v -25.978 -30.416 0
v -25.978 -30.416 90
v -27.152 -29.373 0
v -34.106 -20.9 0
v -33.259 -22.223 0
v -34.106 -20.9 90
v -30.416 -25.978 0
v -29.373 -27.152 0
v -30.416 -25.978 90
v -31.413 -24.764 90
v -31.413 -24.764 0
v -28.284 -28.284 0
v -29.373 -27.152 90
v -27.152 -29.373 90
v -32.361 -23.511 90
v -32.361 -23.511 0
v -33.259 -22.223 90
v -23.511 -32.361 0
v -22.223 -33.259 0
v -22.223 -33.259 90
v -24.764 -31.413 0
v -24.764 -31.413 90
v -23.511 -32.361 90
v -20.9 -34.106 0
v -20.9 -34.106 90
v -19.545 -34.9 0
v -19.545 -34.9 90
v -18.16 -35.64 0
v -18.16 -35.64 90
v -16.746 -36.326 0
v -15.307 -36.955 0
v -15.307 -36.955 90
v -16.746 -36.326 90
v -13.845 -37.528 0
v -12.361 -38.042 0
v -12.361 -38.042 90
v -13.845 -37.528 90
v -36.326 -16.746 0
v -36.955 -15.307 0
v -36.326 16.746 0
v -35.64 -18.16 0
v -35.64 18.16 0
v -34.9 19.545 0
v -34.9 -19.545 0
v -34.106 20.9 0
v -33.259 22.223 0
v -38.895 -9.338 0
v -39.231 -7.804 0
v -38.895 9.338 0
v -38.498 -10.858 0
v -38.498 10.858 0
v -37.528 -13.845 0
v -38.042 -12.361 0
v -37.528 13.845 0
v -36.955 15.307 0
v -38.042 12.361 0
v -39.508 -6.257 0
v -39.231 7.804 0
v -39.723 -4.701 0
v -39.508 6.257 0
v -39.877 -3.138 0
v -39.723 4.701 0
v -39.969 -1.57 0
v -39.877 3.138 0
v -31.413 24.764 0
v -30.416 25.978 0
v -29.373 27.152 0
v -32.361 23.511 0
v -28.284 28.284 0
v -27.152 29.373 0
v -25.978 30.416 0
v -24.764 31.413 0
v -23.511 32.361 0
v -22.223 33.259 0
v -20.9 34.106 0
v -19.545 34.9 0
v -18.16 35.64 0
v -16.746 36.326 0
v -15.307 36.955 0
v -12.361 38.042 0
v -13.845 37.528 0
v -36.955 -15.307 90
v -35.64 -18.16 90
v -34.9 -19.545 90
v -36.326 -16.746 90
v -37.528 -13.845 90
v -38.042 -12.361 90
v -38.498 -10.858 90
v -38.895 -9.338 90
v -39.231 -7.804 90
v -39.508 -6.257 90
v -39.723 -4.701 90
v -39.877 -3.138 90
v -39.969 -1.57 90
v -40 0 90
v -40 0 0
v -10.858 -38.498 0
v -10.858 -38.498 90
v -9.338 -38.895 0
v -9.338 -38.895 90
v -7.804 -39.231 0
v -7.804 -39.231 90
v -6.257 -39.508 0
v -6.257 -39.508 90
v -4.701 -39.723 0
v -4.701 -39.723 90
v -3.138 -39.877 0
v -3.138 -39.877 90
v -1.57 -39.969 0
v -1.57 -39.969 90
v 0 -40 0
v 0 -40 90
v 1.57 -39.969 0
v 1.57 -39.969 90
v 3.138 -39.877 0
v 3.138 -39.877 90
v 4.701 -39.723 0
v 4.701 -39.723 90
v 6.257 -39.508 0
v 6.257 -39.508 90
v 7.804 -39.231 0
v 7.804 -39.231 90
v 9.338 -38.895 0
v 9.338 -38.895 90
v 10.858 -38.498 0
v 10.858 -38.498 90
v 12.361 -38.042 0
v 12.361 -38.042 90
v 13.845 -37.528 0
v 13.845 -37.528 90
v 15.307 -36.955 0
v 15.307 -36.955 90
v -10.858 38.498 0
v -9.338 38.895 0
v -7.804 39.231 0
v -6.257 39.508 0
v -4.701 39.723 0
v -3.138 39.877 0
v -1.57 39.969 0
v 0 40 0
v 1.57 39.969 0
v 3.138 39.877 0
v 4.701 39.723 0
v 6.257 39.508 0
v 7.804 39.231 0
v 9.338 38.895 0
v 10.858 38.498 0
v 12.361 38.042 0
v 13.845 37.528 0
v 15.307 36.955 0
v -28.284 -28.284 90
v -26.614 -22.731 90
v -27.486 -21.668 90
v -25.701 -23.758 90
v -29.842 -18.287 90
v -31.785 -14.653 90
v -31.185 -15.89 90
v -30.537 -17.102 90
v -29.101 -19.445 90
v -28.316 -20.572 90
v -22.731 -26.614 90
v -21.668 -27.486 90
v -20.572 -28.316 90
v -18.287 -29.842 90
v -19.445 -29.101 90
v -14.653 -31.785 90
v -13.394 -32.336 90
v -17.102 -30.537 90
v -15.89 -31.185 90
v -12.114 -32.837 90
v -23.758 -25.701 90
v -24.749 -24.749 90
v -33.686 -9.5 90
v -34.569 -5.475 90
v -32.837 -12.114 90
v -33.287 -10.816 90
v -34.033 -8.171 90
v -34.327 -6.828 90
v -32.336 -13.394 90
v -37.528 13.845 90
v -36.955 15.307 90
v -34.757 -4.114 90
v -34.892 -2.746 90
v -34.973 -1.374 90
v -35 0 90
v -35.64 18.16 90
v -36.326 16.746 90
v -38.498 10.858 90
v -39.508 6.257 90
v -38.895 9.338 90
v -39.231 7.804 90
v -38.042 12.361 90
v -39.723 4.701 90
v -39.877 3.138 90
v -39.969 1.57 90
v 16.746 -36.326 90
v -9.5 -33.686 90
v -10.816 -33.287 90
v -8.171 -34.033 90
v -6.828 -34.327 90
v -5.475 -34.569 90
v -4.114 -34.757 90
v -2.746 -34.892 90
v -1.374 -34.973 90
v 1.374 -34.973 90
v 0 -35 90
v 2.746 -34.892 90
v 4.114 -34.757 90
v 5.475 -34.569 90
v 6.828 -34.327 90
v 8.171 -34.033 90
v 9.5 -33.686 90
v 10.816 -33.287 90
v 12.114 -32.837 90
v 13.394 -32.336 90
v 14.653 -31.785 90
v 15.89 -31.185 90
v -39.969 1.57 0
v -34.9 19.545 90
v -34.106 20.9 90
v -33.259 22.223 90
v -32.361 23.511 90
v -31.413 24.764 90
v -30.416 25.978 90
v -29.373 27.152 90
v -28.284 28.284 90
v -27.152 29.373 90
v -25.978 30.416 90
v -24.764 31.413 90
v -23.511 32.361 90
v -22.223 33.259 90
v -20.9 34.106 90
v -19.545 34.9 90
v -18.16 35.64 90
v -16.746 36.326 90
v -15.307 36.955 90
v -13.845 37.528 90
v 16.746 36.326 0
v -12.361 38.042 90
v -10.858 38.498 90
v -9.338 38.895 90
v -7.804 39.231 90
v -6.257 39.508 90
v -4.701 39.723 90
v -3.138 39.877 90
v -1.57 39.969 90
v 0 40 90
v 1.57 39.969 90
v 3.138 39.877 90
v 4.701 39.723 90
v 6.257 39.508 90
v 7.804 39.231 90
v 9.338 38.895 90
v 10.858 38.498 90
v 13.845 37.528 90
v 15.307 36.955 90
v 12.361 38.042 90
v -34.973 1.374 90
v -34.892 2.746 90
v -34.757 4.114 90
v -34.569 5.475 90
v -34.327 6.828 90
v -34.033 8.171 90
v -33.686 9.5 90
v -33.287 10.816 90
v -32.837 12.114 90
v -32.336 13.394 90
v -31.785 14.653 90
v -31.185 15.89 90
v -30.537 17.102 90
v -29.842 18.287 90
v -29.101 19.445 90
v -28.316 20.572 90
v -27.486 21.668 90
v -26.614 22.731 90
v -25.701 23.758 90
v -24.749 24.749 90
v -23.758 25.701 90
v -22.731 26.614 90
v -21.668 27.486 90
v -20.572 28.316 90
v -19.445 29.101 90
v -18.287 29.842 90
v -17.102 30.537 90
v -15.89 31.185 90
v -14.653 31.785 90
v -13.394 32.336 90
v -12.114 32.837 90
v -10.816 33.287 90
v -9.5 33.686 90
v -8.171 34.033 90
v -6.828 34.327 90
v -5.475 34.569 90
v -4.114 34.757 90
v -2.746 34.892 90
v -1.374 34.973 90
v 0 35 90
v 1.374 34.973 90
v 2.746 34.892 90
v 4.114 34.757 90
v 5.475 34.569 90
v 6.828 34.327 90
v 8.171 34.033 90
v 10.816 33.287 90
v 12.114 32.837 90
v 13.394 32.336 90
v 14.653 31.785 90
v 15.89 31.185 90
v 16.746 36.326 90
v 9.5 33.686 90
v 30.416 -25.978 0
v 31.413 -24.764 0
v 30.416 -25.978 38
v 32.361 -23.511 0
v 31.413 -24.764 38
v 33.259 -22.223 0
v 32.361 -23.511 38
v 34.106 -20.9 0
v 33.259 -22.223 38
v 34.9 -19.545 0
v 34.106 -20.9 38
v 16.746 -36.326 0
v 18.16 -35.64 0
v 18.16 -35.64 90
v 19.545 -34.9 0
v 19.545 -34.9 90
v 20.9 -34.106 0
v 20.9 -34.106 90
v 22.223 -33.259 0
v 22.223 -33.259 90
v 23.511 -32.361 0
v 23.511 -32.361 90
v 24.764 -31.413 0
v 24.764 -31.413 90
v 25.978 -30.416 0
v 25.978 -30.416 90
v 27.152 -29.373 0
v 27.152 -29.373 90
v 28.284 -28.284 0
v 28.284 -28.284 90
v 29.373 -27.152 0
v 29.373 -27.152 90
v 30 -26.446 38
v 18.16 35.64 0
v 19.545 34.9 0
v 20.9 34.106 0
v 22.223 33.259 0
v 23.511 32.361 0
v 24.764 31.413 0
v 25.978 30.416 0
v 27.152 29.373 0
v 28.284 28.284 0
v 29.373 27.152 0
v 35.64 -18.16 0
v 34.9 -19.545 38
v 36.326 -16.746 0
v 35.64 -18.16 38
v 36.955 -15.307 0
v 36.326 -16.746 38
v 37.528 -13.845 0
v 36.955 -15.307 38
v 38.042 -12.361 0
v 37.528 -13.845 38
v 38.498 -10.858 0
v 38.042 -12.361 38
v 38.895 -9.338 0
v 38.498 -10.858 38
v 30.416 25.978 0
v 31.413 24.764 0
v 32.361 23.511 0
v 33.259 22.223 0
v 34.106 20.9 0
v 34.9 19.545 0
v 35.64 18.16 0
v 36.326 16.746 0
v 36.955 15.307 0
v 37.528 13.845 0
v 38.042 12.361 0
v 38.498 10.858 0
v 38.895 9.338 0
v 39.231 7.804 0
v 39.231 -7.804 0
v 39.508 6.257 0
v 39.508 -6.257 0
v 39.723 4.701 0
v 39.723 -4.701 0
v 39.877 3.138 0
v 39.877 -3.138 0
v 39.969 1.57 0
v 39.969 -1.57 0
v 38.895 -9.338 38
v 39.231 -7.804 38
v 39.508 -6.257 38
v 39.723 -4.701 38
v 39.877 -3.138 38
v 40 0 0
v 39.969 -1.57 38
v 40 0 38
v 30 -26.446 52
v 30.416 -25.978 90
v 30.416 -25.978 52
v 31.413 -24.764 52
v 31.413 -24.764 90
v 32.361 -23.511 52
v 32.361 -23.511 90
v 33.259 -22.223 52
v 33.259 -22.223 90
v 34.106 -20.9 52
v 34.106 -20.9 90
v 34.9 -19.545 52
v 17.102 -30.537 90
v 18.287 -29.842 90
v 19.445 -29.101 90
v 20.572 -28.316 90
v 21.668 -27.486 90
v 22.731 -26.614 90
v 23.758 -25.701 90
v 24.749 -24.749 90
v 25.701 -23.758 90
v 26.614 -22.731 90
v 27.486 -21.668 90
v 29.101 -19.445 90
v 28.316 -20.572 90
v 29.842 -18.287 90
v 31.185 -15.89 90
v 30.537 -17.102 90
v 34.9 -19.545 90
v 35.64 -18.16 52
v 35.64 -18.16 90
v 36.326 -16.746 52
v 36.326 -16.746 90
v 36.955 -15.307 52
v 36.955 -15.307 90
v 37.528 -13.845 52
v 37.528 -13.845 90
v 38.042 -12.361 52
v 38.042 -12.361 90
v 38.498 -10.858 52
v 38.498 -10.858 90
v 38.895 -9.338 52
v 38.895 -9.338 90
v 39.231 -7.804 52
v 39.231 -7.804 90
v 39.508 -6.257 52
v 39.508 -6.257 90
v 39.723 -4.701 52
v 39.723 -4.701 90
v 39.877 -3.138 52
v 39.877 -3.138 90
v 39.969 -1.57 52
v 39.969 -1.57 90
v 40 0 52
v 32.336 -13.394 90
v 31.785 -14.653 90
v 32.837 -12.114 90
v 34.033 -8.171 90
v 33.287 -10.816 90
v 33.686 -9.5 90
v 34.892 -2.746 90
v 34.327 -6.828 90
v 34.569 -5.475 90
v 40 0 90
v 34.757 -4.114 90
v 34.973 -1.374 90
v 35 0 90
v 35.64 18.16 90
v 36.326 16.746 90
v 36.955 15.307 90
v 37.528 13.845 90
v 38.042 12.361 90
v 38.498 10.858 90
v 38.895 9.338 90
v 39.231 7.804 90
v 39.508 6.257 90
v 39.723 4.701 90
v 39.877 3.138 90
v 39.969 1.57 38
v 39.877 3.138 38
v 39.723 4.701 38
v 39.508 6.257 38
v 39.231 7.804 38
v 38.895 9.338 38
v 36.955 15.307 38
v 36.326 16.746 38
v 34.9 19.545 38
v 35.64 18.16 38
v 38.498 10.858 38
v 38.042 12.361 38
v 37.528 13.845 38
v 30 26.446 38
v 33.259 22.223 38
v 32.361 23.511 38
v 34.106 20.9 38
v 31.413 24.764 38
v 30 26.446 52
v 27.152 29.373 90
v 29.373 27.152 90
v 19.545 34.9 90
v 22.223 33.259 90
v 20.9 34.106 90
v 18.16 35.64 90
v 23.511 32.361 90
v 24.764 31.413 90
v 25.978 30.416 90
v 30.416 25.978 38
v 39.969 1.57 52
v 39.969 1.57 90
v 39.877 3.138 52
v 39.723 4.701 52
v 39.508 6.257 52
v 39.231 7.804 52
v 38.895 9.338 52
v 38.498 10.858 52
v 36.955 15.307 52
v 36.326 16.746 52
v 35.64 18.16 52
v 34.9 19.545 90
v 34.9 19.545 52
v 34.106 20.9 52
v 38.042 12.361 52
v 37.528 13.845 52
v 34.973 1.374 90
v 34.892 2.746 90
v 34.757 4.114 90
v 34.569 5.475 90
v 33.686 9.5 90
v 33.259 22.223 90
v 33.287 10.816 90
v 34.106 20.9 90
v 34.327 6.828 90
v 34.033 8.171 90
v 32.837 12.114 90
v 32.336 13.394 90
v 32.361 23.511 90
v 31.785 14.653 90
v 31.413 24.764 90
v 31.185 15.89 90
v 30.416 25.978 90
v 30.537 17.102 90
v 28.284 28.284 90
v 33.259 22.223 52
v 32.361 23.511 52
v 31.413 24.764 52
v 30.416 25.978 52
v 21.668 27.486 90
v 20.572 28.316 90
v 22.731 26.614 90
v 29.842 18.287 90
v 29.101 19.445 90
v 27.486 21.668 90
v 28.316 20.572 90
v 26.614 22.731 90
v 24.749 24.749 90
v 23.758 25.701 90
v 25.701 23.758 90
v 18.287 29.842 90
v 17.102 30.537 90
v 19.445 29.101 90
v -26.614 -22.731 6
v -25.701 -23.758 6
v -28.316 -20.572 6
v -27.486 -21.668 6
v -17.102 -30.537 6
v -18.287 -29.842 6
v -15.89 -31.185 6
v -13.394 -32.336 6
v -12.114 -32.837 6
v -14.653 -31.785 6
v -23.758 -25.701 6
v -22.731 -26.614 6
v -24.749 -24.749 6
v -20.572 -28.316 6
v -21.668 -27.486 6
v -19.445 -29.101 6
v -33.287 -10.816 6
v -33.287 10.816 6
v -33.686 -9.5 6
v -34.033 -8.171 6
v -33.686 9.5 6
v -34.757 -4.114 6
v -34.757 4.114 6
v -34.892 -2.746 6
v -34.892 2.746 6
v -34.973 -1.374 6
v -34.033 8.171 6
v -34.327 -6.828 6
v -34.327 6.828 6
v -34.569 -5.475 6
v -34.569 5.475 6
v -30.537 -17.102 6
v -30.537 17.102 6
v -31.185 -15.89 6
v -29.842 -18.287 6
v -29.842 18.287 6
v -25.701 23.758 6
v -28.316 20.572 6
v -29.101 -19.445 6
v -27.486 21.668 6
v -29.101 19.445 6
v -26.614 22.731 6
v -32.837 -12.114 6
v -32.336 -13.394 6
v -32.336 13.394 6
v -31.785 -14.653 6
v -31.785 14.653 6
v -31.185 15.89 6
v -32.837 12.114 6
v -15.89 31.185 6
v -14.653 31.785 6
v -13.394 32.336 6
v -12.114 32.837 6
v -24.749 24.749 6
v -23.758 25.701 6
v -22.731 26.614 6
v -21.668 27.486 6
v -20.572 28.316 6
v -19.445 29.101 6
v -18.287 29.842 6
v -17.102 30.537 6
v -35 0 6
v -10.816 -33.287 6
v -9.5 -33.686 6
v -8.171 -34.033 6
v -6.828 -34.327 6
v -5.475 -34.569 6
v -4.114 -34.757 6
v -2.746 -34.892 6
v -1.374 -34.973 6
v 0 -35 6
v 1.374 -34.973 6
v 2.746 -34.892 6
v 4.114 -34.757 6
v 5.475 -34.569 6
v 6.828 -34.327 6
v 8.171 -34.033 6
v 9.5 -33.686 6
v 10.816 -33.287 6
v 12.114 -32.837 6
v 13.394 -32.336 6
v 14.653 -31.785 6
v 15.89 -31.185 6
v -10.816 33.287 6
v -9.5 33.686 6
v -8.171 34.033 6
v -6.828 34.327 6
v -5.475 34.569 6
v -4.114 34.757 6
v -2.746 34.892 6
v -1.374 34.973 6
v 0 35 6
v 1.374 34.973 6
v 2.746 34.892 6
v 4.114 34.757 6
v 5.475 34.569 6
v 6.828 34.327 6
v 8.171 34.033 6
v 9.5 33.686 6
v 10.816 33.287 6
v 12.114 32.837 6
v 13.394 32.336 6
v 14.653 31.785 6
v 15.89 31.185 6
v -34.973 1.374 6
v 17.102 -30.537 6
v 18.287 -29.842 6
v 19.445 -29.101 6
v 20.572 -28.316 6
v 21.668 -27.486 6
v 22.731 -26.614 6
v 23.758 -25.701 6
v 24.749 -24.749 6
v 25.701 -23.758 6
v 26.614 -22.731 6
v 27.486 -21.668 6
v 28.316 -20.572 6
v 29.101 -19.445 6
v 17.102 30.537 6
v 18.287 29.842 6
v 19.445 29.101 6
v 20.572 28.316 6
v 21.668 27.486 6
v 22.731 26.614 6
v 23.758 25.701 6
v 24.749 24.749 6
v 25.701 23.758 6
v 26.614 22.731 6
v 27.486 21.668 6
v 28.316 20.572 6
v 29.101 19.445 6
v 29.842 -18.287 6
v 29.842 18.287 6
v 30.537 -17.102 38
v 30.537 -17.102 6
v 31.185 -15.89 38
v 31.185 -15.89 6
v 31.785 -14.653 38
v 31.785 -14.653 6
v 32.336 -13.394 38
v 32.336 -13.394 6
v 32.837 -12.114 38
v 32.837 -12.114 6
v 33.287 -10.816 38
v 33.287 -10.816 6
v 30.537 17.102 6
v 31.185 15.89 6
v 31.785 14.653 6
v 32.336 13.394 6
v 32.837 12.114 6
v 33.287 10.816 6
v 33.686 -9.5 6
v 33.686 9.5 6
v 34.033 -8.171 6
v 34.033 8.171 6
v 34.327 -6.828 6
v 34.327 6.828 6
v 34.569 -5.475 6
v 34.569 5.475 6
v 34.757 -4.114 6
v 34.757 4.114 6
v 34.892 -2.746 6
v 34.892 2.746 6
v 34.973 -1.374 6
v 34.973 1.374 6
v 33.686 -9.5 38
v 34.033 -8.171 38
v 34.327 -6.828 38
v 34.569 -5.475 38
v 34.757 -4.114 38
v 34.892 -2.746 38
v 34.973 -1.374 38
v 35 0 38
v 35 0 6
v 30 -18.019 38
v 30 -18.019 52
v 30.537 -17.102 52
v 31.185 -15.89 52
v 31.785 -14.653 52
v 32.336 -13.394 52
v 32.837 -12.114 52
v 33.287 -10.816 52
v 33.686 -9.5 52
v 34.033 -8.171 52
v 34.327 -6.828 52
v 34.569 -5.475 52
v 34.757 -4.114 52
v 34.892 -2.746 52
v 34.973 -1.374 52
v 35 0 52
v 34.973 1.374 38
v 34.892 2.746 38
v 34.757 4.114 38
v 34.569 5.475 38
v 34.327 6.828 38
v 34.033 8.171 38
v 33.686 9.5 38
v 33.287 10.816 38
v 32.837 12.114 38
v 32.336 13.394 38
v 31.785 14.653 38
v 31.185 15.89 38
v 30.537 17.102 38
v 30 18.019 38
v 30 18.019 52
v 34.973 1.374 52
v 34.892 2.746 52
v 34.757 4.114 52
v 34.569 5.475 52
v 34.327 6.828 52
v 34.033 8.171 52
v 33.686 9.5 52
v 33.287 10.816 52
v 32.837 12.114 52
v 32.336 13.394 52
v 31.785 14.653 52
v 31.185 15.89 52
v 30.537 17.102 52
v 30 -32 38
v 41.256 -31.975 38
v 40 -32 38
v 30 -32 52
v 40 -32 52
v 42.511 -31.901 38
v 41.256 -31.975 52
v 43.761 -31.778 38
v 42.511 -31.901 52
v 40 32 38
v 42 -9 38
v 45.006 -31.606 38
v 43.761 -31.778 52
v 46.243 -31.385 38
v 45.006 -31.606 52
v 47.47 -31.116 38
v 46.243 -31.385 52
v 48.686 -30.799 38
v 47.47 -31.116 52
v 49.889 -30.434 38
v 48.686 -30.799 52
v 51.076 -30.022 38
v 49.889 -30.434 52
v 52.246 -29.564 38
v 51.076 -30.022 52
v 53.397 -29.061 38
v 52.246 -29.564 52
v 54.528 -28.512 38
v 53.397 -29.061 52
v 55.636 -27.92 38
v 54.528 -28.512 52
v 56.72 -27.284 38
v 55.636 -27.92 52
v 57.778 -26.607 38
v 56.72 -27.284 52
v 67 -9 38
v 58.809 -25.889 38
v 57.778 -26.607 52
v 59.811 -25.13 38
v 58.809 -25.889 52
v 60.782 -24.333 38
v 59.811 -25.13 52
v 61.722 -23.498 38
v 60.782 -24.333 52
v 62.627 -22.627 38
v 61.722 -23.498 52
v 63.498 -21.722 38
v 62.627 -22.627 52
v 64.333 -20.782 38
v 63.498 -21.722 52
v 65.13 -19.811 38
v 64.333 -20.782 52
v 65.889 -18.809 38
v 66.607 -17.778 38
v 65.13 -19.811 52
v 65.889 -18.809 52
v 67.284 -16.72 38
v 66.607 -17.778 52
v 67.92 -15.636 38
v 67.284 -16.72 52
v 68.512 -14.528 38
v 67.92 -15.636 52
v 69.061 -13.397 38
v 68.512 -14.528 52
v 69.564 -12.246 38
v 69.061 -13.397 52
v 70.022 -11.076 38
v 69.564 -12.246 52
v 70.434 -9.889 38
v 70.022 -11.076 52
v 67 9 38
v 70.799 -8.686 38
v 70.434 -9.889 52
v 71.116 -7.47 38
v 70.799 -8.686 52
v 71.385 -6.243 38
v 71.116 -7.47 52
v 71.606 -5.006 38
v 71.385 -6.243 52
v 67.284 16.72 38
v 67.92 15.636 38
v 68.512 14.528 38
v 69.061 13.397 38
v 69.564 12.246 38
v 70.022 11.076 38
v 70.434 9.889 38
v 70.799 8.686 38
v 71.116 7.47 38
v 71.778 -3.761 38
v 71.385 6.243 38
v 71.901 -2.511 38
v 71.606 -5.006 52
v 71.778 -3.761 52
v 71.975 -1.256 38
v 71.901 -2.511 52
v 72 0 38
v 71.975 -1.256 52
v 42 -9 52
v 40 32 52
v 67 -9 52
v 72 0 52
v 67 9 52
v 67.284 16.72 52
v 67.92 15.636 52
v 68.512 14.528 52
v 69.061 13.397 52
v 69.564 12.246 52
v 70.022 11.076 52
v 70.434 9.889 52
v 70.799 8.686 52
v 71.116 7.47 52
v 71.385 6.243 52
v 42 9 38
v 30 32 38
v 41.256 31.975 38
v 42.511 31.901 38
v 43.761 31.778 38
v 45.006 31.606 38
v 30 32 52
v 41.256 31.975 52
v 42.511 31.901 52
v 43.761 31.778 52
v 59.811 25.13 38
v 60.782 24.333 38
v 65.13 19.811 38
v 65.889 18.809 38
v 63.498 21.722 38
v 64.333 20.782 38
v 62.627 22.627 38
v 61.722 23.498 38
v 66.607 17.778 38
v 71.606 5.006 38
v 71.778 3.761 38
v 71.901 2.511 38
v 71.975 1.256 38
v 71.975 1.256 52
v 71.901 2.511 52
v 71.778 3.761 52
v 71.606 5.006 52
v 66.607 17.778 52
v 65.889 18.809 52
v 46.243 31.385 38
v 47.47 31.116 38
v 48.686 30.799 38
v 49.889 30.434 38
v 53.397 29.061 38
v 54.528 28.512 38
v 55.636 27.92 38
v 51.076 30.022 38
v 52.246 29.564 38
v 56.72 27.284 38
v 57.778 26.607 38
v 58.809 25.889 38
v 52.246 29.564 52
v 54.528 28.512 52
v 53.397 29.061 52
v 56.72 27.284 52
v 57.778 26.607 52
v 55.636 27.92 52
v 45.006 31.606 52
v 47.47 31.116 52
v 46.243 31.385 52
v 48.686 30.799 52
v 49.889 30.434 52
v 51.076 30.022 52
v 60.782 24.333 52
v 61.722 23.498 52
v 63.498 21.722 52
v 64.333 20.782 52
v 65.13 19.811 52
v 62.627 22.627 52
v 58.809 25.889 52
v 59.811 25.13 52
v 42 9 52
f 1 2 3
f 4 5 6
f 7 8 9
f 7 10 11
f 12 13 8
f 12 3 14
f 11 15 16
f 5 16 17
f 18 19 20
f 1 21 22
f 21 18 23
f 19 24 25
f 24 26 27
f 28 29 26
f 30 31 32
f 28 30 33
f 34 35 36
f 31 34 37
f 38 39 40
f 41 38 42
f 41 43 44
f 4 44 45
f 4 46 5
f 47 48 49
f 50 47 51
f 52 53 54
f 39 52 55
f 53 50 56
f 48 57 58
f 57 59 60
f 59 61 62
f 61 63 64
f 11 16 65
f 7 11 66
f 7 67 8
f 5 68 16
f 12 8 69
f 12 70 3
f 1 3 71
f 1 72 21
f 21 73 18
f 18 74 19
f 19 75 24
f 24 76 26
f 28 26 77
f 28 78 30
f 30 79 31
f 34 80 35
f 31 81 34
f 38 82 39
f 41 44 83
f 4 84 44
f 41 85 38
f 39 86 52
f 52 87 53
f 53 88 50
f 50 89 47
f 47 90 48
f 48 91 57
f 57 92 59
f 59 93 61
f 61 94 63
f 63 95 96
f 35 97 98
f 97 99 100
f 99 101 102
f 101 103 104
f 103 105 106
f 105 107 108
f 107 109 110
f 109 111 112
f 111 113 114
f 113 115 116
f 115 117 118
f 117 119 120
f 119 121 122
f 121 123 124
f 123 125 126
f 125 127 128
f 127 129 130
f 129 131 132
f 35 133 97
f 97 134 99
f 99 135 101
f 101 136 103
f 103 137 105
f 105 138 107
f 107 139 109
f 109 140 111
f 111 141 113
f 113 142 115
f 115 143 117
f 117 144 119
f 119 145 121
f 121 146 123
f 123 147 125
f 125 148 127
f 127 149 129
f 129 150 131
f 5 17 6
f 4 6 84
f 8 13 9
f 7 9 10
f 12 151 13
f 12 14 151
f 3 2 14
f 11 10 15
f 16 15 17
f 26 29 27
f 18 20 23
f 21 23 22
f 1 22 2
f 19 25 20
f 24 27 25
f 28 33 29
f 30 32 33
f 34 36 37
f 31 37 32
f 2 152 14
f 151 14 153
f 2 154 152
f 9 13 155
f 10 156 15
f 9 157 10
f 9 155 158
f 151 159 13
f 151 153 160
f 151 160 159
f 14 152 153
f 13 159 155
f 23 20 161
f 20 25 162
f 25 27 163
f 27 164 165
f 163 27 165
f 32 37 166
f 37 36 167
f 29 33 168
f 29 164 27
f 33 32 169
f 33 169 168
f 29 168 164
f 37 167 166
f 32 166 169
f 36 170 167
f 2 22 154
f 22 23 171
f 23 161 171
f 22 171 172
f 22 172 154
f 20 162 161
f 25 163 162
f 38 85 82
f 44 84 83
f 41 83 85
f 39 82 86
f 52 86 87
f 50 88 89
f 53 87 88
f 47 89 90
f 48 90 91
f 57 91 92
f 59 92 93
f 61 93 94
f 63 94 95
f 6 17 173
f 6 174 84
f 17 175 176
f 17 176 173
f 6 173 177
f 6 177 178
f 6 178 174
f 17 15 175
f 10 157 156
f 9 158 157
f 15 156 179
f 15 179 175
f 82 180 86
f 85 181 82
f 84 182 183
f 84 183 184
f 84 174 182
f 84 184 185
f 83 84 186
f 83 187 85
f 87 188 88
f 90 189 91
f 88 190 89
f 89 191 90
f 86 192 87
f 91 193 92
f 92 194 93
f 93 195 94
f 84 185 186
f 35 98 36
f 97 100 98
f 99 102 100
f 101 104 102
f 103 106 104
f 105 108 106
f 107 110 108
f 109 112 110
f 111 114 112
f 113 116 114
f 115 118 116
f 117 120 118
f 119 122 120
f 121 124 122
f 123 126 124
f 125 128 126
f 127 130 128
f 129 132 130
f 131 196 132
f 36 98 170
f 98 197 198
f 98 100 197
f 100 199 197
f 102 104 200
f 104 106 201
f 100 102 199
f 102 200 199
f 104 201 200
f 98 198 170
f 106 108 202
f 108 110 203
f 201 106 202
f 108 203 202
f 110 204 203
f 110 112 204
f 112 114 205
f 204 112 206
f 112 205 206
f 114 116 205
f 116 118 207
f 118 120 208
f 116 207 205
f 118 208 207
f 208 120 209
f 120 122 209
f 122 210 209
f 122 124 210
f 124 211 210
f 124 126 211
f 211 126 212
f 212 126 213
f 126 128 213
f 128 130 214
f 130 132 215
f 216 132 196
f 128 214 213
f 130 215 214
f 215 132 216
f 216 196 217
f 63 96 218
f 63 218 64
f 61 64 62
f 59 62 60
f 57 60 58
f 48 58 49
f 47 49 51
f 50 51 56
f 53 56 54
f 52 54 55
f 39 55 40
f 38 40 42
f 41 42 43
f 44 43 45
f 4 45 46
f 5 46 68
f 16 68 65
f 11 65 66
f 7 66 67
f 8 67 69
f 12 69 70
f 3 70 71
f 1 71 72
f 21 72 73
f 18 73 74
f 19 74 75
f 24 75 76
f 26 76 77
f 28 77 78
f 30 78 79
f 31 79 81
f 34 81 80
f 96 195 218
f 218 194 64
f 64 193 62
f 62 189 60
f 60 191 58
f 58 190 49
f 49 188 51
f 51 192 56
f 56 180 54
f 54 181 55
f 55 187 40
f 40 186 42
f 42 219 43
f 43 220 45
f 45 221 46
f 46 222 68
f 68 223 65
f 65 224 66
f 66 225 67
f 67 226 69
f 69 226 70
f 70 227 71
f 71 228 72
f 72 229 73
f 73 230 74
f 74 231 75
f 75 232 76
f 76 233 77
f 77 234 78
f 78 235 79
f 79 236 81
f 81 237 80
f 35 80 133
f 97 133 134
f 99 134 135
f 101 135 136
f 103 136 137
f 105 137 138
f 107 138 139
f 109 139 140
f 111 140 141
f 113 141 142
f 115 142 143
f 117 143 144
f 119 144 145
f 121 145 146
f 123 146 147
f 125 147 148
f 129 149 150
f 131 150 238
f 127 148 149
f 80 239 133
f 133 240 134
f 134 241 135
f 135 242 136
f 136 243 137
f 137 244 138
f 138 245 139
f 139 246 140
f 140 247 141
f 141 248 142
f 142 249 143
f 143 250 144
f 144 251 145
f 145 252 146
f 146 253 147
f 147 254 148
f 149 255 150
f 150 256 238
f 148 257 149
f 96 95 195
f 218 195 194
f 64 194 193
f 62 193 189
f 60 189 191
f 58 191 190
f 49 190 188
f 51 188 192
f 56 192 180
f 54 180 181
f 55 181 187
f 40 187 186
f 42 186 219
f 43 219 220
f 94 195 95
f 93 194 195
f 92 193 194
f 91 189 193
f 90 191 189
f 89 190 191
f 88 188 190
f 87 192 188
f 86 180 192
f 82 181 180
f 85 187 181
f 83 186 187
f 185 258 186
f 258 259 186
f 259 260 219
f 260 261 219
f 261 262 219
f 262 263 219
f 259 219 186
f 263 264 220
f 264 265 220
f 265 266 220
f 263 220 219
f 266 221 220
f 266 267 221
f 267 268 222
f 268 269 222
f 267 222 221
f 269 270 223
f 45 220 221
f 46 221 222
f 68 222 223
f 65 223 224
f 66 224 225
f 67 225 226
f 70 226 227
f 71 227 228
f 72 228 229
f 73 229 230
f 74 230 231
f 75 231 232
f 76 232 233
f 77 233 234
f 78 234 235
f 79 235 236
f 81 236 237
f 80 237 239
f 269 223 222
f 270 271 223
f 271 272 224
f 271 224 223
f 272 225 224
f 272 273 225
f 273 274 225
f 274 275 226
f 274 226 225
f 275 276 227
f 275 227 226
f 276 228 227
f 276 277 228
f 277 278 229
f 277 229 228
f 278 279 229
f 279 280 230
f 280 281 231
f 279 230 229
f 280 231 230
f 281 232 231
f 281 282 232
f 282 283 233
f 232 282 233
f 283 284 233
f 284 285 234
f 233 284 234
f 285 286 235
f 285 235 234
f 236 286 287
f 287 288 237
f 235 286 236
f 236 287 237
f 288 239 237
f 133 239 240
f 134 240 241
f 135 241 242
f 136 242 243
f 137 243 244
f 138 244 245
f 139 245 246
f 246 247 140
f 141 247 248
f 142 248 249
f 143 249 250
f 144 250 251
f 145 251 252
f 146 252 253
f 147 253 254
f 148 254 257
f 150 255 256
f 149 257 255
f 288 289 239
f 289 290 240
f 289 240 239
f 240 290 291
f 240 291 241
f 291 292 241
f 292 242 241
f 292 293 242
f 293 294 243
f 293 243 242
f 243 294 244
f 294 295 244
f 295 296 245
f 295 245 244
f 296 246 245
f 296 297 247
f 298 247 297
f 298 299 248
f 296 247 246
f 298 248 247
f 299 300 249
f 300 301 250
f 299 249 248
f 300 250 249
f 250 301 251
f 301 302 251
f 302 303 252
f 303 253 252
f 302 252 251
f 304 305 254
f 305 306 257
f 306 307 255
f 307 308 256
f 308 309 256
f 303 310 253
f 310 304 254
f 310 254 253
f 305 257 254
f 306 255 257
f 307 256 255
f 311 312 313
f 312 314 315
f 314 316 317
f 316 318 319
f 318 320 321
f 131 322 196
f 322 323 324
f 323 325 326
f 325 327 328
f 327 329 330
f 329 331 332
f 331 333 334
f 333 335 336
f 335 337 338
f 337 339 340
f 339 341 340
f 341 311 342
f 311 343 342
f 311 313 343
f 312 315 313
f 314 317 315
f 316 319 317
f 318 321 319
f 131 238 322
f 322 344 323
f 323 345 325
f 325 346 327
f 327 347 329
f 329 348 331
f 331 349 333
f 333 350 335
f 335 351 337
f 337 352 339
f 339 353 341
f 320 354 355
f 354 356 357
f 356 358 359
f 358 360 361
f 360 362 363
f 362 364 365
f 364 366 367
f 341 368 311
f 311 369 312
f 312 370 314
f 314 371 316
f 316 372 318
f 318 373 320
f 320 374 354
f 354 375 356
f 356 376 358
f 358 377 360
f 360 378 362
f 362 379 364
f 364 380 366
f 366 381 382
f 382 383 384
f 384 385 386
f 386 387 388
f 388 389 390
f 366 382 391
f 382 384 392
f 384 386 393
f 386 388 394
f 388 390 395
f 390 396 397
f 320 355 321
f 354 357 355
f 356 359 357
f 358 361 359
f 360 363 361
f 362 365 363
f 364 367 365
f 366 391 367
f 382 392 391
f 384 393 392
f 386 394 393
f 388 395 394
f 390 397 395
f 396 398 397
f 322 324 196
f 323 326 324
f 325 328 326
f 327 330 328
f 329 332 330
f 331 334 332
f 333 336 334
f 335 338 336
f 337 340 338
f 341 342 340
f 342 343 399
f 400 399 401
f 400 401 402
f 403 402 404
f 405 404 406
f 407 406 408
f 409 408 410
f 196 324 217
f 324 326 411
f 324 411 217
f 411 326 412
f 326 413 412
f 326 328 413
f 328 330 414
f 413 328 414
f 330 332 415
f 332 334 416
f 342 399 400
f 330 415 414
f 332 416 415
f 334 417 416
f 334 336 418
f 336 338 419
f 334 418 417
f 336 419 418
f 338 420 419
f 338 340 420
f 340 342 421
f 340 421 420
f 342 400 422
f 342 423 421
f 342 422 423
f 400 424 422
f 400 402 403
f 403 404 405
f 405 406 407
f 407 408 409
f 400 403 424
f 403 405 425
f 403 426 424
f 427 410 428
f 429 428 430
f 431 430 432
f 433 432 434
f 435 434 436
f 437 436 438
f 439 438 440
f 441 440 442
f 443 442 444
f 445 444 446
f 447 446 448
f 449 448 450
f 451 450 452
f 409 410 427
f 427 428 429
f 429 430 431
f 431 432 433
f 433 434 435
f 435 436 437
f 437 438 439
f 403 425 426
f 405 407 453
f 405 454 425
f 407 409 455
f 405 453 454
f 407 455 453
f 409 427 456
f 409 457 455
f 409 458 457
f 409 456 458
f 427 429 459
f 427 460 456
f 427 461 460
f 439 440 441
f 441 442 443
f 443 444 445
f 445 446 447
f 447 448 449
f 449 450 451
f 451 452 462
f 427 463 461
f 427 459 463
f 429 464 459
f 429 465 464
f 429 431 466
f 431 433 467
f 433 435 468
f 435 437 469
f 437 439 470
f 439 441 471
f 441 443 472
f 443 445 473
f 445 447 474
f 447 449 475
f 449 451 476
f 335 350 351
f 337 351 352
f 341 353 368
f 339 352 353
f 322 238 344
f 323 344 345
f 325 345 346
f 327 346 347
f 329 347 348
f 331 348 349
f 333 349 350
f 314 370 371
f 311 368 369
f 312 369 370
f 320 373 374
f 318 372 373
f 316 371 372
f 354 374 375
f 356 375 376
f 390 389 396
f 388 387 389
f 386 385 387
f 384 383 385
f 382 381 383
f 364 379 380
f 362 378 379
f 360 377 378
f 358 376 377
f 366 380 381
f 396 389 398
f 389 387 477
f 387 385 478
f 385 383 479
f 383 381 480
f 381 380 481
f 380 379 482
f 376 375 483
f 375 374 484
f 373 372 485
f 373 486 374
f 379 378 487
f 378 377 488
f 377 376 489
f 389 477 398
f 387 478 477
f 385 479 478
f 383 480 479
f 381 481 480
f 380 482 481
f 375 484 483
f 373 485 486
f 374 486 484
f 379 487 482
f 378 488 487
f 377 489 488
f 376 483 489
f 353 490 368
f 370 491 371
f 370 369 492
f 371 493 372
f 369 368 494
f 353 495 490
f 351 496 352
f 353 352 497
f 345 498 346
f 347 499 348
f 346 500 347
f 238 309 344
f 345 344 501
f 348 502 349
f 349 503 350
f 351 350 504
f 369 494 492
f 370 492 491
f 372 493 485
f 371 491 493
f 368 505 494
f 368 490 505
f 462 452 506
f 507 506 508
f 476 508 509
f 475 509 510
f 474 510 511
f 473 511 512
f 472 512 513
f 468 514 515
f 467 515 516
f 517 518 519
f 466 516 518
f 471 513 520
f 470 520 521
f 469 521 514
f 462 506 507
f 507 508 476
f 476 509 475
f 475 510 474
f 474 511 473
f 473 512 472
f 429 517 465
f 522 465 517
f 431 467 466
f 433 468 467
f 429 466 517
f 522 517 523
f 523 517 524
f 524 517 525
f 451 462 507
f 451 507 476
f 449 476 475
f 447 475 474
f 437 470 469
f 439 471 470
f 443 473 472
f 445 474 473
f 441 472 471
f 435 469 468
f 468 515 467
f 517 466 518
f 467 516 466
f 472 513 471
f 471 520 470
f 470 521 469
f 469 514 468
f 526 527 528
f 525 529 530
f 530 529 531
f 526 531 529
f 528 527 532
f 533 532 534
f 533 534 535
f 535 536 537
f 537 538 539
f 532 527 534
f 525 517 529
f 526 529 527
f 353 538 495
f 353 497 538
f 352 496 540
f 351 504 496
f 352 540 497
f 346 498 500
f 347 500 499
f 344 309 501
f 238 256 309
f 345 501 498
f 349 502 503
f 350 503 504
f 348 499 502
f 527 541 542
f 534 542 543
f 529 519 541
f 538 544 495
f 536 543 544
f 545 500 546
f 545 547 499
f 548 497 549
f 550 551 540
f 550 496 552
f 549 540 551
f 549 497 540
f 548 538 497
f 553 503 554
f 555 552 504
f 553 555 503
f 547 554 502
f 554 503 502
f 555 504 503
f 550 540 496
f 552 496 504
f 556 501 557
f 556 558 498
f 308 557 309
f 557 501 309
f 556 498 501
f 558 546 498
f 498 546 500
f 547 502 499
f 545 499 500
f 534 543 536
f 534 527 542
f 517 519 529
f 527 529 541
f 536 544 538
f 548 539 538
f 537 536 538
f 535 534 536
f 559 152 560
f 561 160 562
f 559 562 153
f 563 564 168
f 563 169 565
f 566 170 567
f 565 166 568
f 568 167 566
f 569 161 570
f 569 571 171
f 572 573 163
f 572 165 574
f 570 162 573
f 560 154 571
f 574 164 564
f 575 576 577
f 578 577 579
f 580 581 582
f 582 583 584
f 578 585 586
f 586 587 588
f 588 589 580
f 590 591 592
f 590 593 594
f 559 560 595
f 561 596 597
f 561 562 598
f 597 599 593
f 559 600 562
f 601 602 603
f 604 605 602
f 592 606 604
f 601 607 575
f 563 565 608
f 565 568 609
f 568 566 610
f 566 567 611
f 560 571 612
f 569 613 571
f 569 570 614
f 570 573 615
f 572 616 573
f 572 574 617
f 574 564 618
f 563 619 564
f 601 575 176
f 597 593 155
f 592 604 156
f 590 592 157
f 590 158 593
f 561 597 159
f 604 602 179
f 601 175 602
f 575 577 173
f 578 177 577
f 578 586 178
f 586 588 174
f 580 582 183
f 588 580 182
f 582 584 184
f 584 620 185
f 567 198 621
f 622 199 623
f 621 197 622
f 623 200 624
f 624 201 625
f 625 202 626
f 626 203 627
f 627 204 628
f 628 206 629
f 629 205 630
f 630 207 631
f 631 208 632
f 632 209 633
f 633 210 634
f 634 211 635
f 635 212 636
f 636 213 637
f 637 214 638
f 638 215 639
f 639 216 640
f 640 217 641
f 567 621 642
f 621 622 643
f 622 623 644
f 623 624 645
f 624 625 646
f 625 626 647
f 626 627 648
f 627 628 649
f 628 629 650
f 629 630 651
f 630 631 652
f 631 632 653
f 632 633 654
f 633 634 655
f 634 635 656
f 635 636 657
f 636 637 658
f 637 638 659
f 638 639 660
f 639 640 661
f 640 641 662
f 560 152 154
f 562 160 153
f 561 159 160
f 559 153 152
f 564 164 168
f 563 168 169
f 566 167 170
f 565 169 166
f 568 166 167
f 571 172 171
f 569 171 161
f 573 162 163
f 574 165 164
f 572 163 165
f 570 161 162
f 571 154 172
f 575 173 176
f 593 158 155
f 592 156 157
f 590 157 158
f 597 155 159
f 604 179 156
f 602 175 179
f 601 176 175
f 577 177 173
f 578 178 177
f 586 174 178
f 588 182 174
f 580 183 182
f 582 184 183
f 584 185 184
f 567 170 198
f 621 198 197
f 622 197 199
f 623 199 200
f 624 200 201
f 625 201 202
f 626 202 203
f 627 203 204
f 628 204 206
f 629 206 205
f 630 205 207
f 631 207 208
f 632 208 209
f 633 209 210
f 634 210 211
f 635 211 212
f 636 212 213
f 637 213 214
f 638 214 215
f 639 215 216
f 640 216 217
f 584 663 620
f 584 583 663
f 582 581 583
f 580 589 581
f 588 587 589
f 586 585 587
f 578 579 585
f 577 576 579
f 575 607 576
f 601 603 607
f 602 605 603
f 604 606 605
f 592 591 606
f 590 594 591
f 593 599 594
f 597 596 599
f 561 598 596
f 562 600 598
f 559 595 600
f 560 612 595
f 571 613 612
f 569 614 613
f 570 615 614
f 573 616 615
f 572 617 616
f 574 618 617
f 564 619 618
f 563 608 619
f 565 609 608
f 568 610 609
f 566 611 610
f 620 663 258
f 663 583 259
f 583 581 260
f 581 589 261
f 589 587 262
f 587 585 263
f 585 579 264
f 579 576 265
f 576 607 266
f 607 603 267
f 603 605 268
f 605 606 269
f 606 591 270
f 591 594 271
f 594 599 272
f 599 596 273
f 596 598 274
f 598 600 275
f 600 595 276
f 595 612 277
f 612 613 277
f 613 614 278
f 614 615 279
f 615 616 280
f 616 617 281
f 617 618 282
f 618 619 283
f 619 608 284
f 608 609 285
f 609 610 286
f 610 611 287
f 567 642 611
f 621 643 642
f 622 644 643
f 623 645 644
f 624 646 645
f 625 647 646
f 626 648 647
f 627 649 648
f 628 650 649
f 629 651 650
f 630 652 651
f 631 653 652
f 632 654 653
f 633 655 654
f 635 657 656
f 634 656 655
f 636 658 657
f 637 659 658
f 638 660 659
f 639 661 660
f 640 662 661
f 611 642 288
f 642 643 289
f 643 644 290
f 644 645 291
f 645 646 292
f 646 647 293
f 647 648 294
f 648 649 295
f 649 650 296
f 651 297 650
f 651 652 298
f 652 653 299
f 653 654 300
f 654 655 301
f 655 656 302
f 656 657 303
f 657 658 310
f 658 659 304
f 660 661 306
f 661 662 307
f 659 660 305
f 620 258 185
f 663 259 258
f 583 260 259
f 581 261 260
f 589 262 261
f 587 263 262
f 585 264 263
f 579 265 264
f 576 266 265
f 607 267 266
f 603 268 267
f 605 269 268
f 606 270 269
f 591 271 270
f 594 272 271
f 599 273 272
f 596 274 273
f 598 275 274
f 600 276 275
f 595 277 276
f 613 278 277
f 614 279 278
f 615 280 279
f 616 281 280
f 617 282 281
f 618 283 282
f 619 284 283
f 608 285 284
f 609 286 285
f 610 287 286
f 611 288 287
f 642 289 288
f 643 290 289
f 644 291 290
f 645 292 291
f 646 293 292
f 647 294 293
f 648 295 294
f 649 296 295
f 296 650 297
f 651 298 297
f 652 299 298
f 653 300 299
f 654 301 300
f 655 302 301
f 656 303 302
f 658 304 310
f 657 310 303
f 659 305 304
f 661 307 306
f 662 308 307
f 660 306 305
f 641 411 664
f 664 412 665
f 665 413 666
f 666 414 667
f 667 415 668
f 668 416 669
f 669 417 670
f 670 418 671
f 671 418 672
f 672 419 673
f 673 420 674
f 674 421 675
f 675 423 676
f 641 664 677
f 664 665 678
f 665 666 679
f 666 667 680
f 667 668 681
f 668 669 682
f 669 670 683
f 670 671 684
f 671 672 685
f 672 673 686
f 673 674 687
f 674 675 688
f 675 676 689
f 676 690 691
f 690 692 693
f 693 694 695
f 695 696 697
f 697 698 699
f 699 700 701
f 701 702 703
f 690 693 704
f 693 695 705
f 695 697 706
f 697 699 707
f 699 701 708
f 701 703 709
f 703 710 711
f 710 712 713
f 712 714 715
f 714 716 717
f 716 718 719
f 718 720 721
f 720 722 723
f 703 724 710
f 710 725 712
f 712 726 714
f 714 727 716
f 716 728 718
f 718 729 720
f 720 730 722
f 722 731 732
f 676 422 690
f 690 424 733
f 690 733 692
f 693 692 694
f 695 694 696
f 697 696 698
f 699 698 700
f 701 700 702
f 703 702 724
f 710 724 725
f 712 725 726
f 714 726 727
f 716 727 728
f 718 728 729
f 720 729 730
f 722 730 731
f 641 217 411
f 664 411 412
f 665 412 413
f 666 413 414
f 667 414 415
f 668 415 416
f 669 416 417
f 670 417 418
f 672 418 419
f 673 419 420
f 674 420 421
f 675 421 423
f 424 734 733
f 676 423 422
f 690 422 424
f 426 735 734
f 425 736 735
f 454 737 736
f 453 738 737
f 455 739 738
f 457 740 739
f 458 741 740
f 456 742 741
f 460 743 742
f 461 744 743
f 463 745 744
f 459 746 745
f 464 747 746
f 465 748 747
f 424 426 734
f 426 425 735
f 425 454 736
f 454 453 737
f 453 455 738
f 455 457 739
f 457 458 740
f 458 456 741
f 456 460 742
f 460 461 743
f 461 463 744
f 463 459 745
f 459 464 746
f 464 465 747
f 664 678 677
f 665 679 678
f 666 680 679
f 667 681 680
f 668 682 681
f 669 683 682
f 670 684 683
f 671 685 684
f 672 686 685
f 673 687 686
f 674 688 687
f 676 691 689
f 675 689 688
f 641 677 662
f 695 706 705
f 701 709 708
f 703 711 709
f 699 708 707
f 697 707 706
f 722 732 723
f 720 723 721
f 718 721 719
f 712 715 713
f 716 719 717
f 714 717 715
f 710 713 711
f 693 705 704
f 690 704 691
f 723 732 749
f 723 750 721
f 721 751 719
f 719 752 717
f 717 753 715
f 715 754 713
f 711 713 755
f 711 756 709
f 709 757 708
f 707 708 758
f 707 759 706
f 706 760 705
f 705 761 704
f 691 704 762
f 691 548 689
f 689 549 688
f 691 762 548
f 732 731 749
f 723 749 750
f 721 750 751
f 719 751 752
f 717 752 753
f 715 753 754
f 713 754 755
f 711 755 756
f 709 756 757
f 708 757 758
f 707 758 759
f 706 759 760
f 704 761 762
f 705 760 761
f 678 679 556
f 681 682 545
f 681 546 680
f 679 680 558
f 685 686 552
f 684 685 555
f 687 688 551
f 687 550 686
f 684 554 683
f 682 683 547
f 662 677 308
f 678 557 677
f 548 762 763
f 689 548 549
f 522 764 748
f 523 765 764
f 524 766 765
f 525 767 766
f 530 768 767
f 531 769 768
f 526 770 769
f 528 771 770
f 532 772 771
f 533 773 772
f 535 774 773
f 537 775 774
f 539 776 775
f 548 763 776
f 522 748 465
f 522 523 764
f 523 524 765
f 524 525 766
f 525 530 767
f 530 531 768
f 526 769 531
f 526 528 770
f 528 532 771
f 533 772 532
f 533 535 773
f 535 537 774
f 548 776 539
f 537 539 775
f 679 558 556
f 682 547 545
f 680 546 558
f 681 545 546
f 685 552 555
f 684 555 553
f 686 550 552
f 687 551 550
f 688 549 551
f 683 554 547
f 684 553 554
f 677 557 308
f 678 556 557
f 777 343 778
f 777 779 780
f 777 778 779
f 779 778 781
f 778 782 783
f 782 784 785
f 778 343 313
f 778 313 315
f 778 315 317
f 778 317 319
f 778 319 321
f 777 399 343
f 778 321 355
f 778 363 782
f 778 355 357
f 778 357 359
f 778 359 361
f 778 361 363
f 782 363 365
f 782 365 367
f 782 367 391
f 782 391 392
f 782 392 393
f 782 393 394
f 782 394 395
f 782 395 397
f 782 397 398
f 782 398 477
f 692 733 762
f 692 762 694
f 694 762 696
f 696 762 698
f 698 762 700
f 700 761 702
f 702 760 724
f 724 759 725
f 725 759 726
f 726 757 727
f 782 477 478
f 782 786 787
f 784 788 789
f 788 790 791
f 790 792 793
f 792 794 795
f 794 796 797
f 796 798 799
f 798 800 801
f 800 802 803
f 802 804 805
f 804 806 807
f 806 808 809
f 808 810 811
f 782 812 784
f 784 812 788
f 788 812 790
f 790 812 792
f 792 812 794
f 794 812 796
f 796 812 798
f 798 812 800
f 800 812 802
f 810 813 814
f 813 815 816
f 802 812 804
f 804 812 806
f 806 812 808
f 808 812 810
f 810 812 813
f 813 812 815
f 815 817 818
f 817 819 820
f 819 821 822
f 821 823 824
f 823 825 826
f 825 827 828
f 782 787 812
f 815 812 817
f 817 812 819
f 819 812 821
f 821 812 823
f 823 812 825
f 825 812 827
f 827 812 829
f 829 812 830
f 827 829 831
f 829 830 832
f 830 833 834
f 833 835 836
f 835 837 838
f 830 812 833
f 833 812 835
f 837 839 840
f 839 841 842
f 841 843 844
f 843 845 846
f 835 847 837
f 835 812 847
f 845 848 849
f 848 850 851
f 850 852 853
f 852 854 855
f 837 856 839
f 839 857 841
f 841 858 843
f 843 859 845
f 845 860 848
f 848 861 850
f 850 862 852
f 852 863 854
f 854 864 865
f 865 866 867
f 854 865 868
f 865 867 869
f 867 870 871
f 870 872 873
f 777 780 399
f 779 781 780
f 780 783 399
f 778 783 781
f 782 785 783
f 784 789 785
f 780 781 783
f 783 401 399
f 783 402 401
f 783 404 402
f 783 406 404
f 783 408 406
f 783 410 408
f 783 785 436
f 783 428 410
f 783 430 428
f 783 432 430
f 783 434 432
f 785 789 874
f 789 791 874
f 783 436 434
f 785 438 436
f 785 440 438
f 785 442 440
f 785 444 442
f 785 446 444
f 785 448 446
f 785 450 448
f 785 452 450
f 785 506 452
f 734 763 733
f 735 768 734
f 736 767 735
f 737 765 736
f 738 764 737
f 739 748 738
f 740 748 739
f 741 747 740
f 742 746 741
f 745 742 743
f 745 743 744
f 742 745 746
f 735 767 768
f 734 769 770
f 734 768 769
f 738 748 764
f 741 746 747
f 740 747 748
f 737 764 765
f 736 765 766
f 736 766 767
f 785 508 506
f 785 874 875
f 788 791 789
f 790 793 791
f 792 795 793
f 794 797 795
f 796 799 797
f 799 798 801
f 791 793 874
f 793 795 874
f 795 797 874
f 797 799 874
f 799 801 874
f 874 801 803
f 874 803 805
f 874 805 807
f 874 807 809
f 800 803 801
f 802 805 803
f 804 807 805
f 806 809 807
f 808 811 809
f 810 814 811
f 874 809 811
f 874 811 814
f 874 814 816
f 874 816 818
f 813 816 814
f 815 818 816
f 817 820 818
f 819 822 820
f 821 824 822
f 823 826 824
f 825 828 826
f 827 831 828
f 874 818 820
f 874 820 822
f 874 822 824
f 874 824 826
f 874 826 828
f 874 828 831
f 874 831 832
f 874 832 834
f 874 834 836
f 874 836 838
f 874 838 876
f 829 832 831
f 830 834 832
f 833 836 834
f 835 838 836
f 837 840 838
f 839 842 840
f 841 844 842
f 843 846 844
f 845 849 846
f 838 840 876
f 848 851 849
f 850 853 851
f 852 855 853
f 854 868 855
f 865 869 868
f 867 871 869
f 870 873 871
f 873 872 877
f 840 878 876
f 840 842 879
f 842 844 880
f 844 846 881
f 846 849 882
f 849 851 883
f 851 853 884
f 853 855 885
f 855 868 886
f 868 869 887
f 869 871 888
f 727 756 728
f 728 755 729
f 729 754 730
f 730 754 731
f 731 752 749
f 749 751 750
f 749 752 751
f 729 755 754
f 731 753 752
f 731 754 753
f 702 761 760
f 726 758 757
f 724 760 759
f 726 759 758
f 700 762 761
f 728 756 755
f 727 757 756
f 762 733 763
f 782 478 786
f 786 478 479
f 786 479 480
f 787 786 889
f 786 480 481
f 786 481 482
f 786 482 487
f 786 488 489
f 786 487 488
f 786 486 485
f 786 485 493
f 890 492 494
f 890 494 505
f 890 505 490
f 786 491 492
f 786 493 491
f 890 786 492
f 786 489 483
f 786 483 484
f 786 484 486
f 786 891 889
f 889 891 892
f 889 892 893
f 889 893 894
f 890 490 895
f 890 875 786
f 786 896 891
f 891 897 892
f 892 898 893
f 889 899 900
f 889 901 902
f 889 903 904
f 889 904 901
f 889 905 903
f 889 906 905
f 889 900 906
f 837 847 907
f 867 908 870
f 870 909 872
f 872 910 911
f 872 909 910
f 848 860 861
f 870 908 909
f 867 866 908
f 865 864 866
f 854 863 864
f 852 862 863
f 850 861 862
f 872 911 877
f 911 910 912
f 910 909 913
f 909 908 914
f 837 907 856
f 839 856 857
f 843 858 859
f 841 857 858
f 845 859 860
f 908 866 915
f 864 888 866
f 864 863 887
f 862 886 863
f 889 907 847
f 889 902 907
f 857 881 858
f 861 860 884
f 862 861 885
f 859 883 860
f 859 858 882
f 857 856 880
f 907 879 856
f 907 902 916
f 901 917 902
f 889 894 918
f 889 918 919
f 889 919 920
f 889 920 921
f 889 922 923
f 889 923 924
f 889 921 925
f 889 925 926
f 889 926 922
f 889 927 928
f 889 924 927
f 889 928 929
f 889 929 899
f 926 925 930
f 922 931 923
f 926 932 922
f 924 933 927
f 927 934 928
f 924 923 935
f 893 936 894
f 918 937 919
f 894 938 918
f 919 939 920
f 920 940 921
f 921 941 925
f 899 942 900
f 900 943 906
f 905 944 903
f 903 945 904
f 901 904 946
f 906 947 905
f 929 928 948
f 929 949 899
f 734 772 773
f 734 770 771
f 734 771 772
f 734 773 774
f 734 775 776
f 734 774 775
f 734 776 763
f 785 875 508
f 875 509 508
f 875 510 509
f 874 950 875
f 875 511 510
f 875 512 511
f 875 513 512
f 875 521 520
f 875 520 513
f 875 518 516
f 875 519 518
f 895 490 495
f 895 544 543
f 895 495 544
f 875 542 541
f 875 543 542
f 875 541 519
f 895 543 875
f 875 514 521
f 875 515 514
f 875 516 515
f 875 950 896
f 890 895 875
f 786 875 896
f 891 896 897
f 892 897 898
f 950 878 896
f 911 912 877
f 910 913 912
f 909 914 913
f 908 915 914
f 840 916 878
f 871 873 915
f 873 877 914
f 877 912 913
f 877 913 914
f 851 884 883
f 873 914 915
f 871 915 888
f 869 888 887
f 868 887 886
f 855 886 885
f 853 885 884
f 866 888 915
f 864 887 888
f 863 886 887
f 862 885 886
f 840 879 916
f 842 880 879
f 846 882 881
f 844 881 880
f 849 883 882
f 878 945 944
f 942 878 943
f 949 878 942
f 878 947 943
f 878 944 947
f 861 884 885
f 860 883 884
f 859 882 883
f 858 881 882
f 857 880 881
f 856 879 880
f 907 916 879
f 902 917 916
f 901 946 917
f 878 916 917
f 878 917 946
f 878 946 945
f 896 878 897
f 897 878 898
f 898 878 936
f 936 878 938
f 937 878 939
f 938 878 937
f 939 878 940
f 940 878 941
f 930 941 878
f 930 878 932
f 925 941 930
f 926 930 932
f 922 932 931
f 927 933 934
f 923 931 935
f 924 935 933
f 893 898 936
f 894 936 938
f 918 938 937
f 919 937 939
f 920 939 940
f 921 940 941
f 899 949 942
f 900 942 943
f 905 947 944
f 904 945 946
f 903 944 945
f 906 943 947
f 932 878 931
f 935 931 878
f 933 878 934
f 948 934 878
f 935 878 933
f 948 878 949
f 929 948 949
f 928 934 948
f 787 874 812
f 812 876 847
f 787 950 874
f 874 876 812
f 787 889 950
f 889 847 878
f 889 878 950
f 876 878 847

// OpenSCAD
$fn = 160;

outer_radius = 40;
inner_radius = 35;
mug_height = 90;
bottom_thickness = 6;

handle_depth = 14;
handle_outer_radius = 32;
handle_flat_depth = 10;
handle_vertical_center = mug_height / 2;

inner_gap_width = 25;
inner_gap_height = 30;
inner_gap_offset = 2;

module mug_body() {
    difference() {
        cylinder(r = outer_radius, h = mug_height);
        translate([0, 0, bottom_thickness])
            cylinder(r = inner_radius, h = mug_height - bottom_thickness);
    }
}

module handle_profile() {
    union() {
        translate([-handle_flat_depth, -handle_outer_radius])
            square([handle_flat_depth, handle_outer_radius * 2]);
        intersection() {
            circle(r = handle_outer_radius);
            translate([0, -handle_outer_radius])
                square([handle_outer_radius, handle_outer_radius * 2]);
        }
    }
}

module handle_shape() {
    linear_extrude(height = handle_depth, center = true)
        handle_profile();
}

module handle_body() {
    difference() {
        handle_shape();
        translate([
            inner_gap_offset + inner_gap_width / 2,
            0,
            0
        ])
            cube(
                [inner_gap_width, handle_depth + 4, inner_gap_height],
                center = true
            );
    }
}

module handle() {
    translate([outer_radius, 0, handle_vertical_center])
        handle_body();
}

union() {
    mug_body();
    handle();
}
